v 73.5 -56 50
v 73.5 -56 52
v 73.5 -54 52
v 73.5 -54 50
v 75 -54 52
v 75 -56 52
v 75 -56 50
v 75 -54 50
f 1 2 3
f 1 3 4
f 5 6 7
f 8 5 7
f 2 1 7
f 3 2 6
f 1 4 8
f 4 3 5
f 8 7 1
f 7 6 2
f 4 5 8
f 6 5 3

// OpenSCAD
// file: ../../../cad/v3/hardware.scad
include <params.scad>
use <enclosure.scad>
// PROVISIONAL purchased component envelopes; not production part drawings.
module motor() {
 union() {
  translate([screw_x-6,motor_front-motor_l,motor_bottom]) cube([12,motor_l,10]);
  yrod(screw_x,motor_front-0.1,axis_z,shaft_d,shaft_l+0.1);
  for(x=[screw_x-3,screw_x+3]) translate([x-0.5,motor_front-motor_l-2,motor_bottom+4.5]) cube([1,2.1,1]);
 }
}
module shaft() { yrod(screw_x,motor_front,axis_z,shaft_d,shaft_l); }
module drive_nut(t=0) {
 difference() {
  translate([screw_x,carriage_back+t+nut_slot_y+0.1,axis_z]) rotate([-90,0,0]) union() {
   cylinder(d=nut_af/cos(30),h=nut_height,$fn=6);
   cylinder(d=nut_flange_d,h=nut_flange_t);
  }
  yrod(screw_x,carriage_back+t+nut_slot_y,axis_z,shaft_d+0.2,nut_height+0.2);
 }
}
module battery_holder(raise=0) {
 // Conservative single envelope including cell, contacts and holder.
 translate([93.2,-52,4.5+raise]) cube([22,74,21]);
}
module esp() {
 union() {
  translate([77.5,28,8.3]) cube([17.8,22.5,1.2]);
  translate([78.5,29,9.5]) cube([15.8,20.5,5]);
  translate([81.5,47,9.5]) cube([9,5,3.3]);
 }
}
module power_board() { translate([99,29,8.3]) cube([15,20,7.2]); }
module bridge_board() { translate([98.5,29,20.3]) cube([15,20,7]); }
module oled() {
 union() {
  translate([87.6,53.5,21.5]) cube([27.8,1.6,27.3]);
  translate([88.15,55.1,25]) cube([26.7,1.4,19.3]);
  translate([96.5,50.5,46]) cube([10,3,2.8]);
 }
}
module button() {
 union() {
  xrod(button_panel_x-button_body_l,button_y,button_z,button_body_d,button_body_l);
  xrod(button_panel_x,button_y,button_z,button_flange_d,2);
  xrod(button_panel_x+2,button_y,button_z,12.9,button_face_l-2);
  // Candidate fastening nut envelope; actual nut diameter/thickness to measure.
  difference() {
   xrod(button_panel_x-6,button_y,button_z,17.8,3);
   xrod(button_panel_x-6.1,button_y,button_z,button_hole_d,3.2);
  }
  // Two terminals only; solder and bend radius need physical confirmation.
  for(y=[button_y-2.425,button_y+2.425])
   translate([button_panel_x-button_body_l-button_terminal_l,y-.3,button_z-1]) cube([button_terminal_l,.6,2]);
 }
}
module acrylic() { translate([window_x0-2,window_y0-2,window_pane_z]) cube([window_x1-window_x0+4,window_y1-window_y0+4,window_pane_t]); }
module hinge_pin() { xrod(hinge_pin_x,hinge_y,hinge_z,2,hinge_pin_len); }
module thread_insert(x,y,z) {
 difference() {
  zhole(x,y,z,insert_od,insert_len);
  zhole(x,y,z-.1,2.05,insert_len+.2);
 }
}
module inserts_fixed() {
 for(p=battery_screws) thread_insert(p[0],p[1],2.9);
 for(x=keeper_x) thread_insert(x,keeper_y,44.3);
}
module inserts_lid() {
 for(p=window_clamps) thread_insert(p[0],p[1],window_ear_top);
}
module battery_connector() { translate([91.5,22,12.5]) cube([4.3,5,5]); }
module motor_pads() {
 // 0.3 mm compressed adhesive shim specification, not unspecified empty space.
 translate([78.5,motor_front-motor_l+.1,motor_bottom-0.3]) cube([12,motor_l-.2,0.3]);
 translate([78.5,motor_front-motor_l+.1,motor_top]) cube([12,motor_l-.2,0.3]);
 difference() {
  translate([78.5,-15,motor_bottom]) cube([12,0.3,10]);
  yrod(screw_x,-15.1,axis_z,4.7,0.6);
 }
 // Rear pad clears the two solder terminals.
 difference() {
  translate([78.5,motor_front-motor_l-.3,motor_bottom]) cube([12,0.3,10]);
  translate([80,motor_front-motor_l-.4,motor_bottom+4]) cube([9,0.5,2]);
 }
}
module board_pads() {
 translate([77.5,28,7.4]) cube([17.8,22.5,0.9]);
 translate([99,29,7.4]) cube([15,20,0.9]);
 translate([98.5,29,19.8]) cube([15,20,0.5]);
}

// Illustrative screw envelopes. Intentional pilot-thread interference is excluded
// from solid collision assertions. They remain in preview, BOM and total bounds.
module screw_down(x,y,top,len,d=2,flush=false) {
 color([0.45,0.47,0.5]) {
  zhole(x,y,top-len,d,len);
  if(flush) translate([x,y,top-1.3]) cylinder(d1=d,d2=4,h=1.3);
  else zhole(x,y,top,d==3?5.5:3.6,d==3?2:1.4);
 }
}
// Canonical fastener table: x,y,z,length,diameter,flush,rotationX,headless,owners.
// Preview and interference verification consume this SAME table.
// Stable connection names: keep existing names when adapting module brackets.
function fastener_ids(kind="fixed") = kind=="drive" ? ["F-nut-cap-left","F-nut-cap-right"] :
 kind=="lid" ? ["F-latch-left","F-latch-right","F-window-rear-left","F-window-rear-right","F-window-front-left","F-window-front-right"] :
 ["F-lock-rear-left","F-lock-rear-right","F-lock-front-left","F-lock-front-right",
 "F-guide-rear-left","F-guide-rear-right","F-guide-front","F-motor-left","F-motor-right",
 "F-tray-left","F-tray-right","F-deck-left","F-deck-right","F-esp-left","F-esp-right",
 "F-driver-left","F-driver-right","F-oled-left","F-oled-right",
 "F-battery-rear-left","F-battery-rear-right","F-battery-front-left","F-battery-front-right",
 "F-hinge-left","F-hinge-right"];
function fastener_specs(kind="fixed",t=0) = kind=="drive" ?
 [for(x=[screw_x-4.5,screw_x+4.5]) [x,carriage_back+t-0.2,46,6,2,false,0,false,["nut_cap","nut_carriage"]]] :
 kind=="lid" ? concat(
 [for(x=[93.5,112.5]) [x,8.5,45.2,8,3,false,180,false,["latch_retainer","lid"]]],
 [for(p=window_clamps) [p[0],p[1],window_inner_z,6,2,true,180,false,["window_grille","lid"]]]) :
 concat(
 [for(p=lock_mounts) [p[0],p[1],32.4,6,2,false,0,false,["lock_base","base_box"]]],
 [for(p=guide_screws) [p[0],p[1],44.9,8,2,false,0,false,["guide_cap","lock_base"]]],
 [for(p=motor_screws) [p[0],p[1],motor_clamp_z+2,8,2,false,0,false,["motor_clamp","lock_base"]]],
 [for(p=tray_screws) [p[0],p[1],7.4,4,2,false,0,false,["electronics_tray","base_box"]]],
 [for(p=deck_screws) [p[0],p[1],19.8,6,2,false,0,false,["upper_deck","electronics_tray"]]],
 [for(x=[76.2,96.7]) [x,39,16.8,6,2,false,0,false,["esp_clip","electronics_tray"]]],
 [for(x=[97,115]) [x,38,29.6,6,2,false,0,false,["upper_clip","upper_deck"]]],
 [for(x=[86.8,115.8]) [x,56.3,51,6,2,true,0,false,["oled_bridge","base_box"]]],
 [for(p=battery_screws) [p[0],p[1],0,8,2,true,180,false,["battery_hatch","base_box"]]],
 [for(i=[0:1]) [keeper_x[i],keeper_y,51.1,6,2,true,0,false,[i==0?"hinge_guard_left":"hinge_guard_right","base_box","inserts_fixed"]]]);
module render_screw(s) {
 translate([s[0],s[1],s[2]]) rotate([s[6],0,0])
 if(s[7]) zhole(0,0,-s[3],s[4],s[3]);
 else screw_down(0,0,0,s[3],s[4],s[5]);
}
module fixed_fasteners() { for(s=fastener_specs("fixed")) render_screw(s); }
module moving_fasteners(t=0) { for(s=fastener_specs("drive",t)) render_screw(s); }
module lid_fasteners() { for(s=fastener_specs("lid")) render_screw(s); }
// file: ../../../cad/v3/electronics.scad
include <params.scad>

module electronics_tray() {
 nominal_difference() {
  union() {
   cube_at([74.5,25.5,5.4],[42,27,2]);
   cube_at([74.5,25.5,7.3],[2.5,27,0.7]);
   cube_at([114,25.5,7.3],[2.5,27,0.7]);
   for(p=deck_screws) translate([p[0],p[1],7.3]) cylinder(r=1.3,h=10.7);
   for(x=[76.2,96.7]) cube_at([x-1.2,37,7.3],[2.4,4,7.5]);
  }
  for(p=tray_screws) pilot(p,5.2,8.2,2.4);
  for(x=[90,117]) zhole(x,24,5.2,6.4,3.2);
  for(p=deck_screws) pilot(p,13,18.2,1.7);
  for(x=[76.2,96.7]) zhole(x,39,9.8,1.7,5.2);
  // Tie slots for the lower power board; underside remains accessible off-box.
  for(x=[99.5,112.75]) cube_at([x,33,5.2],[tie_slot_width,8,3.2]);
 }
}
module upper_deck() {
 nominal_difference() {
  union() {
   cube_at([96,25.3,18],[21,27.2,1.8]);
   cube_at([96,27,19.7],[2.3,24,1.8]);
   cube_at([114.3,27,19.7],[2.7,24,1.8]);
   for(x=[97,115]) cube_at([x-1.3,36,19.7],[2.6,4,7.9]);
  }
  for(p=deck_screws) pilot(p,17.8,20,2.4);
  zhole(96.7,39,17.8,4,0.6);
  for(x=[97,115]) zhole(x,38,22.3,1.7,5.5);
 }
}
module esp_clip() {
 nominal_difference() {
  cube_at([74.5,37,14.8],[24,4,2]);
  for(x=[76.2,96.7]) zhole(x,39,14.6,2.4,2.4);
 }
}
module upper_clip() {
 nominal_difference() {
  cube_at([95.5,36,27.6],[21.5,4,2]);
  for(x=[97,115]) zhole(x,38,27.4,2.2,2.4);
 }
}
module oled_bridge() {
 nominal_difference() {
  cube_at([84.3,52.5,49.2],[34,6.1,1.8]);
  for(x=[86.8,115.8]) {
   zhole(x,56.3,49,2.4,2.2);
   countersink(x,56.3,49.7,2.4,4,1.3);
  }
 }
}
// file: ../../../cad/v3/lock.scad
include <params.scad>

module lock_base() {
 nominal_difference() {
  union() {
   cube_at([75,-46,lock_floor],[41,68,3]);
   // Continuous independent bolt support: bed, keyed rail, removable roof.
   cube_at([91,-19,lock_floor_top],[20,24.5,guide_bottom-lock_floor_top]);
   cube_at([bolt_x-key_w/2,-19,key_z0],[key_w,24.5,key_z1-key_z0]);
   for(p=guide_screws) translate([p[0],p[1],lock_floor_top-0.01]) cylinder(r=2.3,h=guide_top-lock_floor_top+0.01);
   for(p=motor_screws) translate([p[0],p[1],lock_floor_top-0.01]) cylinder(r=2.2,h=motor_clamp_z-lock_floor_top+0.01);
   // Motor cradle and front locating shoulder; clamp presses through thin pads.
   cube_at([77.2,-41.8,32.4],[14.6,27.5,motor_bottom-0.3-32.4]);
   cube_at([77.2,-16,32.4],[14.6,2.3,motor_clamp_z-32.4]);
   // Blind front socket: usable bore ends Y=19.8; last 1 mm is solid.
   cube_at([bolt_x-6,14.8,32.4],[12,6,11.6]);
  }
  // Conservative 25x12x10 body; includes the 2.5mm output offset.
  cube_at([screw_x-motor_w/2-0.3,motor_front-motor_l-0.3,motor_bottom-0.3],[motor_w+0.6,motor_l+0.6,motor_h+0.6]);
  yhole(screw_x,-16.3,axis_z,4.7,4);
  // Top-open U seat permits vertical insertion of motor + threaded drive.
  cube_at([screw_x-2.35,-16.3,axis_z],[4.7,4,motor_clamp_z-axis_z+0.2]);
  cube_at([bolt_x-latch_hole/2,13.8,axis_z-latch_hole/2],[latch_hole,6,latch_hole]);
  for(p=lock_mounts) pilot(p,29.2,32.6,2.4);
  for(p=guide_screws) pilot(p,33.2,43.1);
  for(p=motor_screws) pilot(p,motor_clamp_z-6,motor_clamp_z+0.2);
  // Flat reusable rail for future mechanical feedback adapters (SKU pending).
  for(y=[-12,2]) for(x=[112,115]) cube_at([x,y,29.2],[tie_slot_width,5,3.5]);
  // Wiring channels; no closed tunnel around the actuator.
  cube_at([110,15,29.2],[3,7.2,3.5]);
 }
}
module guide_cap() {
 nominal_difference() {
  cube_at([92,-20.5,guide_top],[23,26,guide_cap_t]);
  for(p=guide_screws) pilot(p,42.7,45.1,2.4);
 }
}
module motor_clamp() {
 nominal_difference() {
  cube_at([73.8,-35,motor_clamp_z],[21.4,16,2]);
  for(p=motor_screws) pilot(p,motor_clamp_z-0.2,motor_clamp_z+2.2,2.4);
  cube_at([90.8,-20.7,motor_clamp_z-0.2],[4.6,1.8,2.4]);
 }
}
module bolt_raw(t=0) {
 rear=bolt_back+t;
 nominal_difference() {
  union() {
   cube_at([bolt_x-body_w/2,rear-4,axis_z-body_w/2],[body_w,body_l+4,body_w]);
   cube_at([bolt_x-3,rear+body_l,axis_z-3],[6,tongue_l-taper_l+0.01,6]);
   translate([bolt_x,rear+body_l+tongue_l-taper_l,axis_z]) rotate([-90,0,0])
    linear_extrude(height=taper_l,scale=5/6) square([6,6],center=true);
   // Fork overlaps the main body; lateral/vertical float around the drive finger.
   cube_at([92,rear,axis_z-body_w/2],[7.6,6,body_w]);
  }
  cube_at([91,rear+1.7,35.2],[8.6,2.6,5.6]);
  cube_at([bolt_x-(key_w+0.6)/2,rear-4.1,33.2],[key_w+0.6,body_l+4.2,1.6]);
 }
}
module bolt(t=0,shift=0) { translate([0,0,shift]) bolt_raw(t); }
module nut_carriage(t=0) {
 rear=carriage_back+t;
 nominal_difference() {
  union() {
   cube_at([screw_x-7,rear-2,33.4],[13,10,10.6]);
   cube_at([screw_x+4.5,rear-1.5,36],[8.7,2,4]);
  }
  yhole(screw_x,rear-3,axis_z,shaft_d+0.4,12);
  translate([screw_x,rear+nut_slot_y,axis_z]) rotate([-90,0,0]) {
   cylinder(d=nut_slot_d,h=nut_slot_t,$fn=6);
   cylinder(d=nut_flange_d+0.4,h=nut_flange_t+0.2);
  }
  // Wide open top access for the nut: larger than its circumdiameter.
  cube_at([screw_x-5.3,rear+nut_slot_y,axis_z],[10.6,nut_slot_t,6.2]);
  for(x=[screw_x-4.5,screw_x+4.5]) zhole(x,rear-0.2,39.5,1.7,4.7);
 }
}
module nut_cap(t=0) {
 rear=carriage_back+t;
 nominal_difference() {
  cube_at([screw_x-6.5,rear-2,44],[12.5,10,2]);
  for(x=[screw_x-4.5,screw_x+4.5]) zhole(x,rear-0.2,43.8,2.4,2.4);
 }
}
module fit_bar() { cube([tongue_w,tongue_w,25]); }
module fit_gauge() {
 nominal_difference() {
  cube([30,14,8]);
  for(i=[0:2]) cube_at([2+i*9,3,-0.1],[6.4+i*0.2,6.4+i*0.2,8.2]);
 }
}
// file: ../../../cad/v3/enclosure.scad
include <params.scad>

module base_box() {
 nominal_difference() {
  union() {
   nominal_difference() {
    linear_extrude(height=shell_top) rounded_rect(L,W,4);
    translate([0,0,floor_t]) linear_extrude(height=49) rounded_rect(L-2*wall,W-2*wall,1);
   }
   cube_at([70.5,-57,2.9],[3,114,48.1]);
   // Stationary rear header reaches the same closed height as the lid.
   intersection() {
    cube_at([-117,-60,47],[234,9,8]);
    union() { cube_at([-118,-61,46],[236,11,5]); xrod(-118,hinge_y,hinge_z,8,236); }
   }
   for(k=fixed_knuckles) xrod(k[0],hinge_y,hinge_z,hinge_od,k[1]-k[0]);
   for(x=keeper_x) cube_at([x-4,-54,43.5],[8,6.5,4.8]);
   // Battery chamber: side/end walls and a fixed ceiling connected to outer wall.
   cube_at([90,-54.5,2.9],[2.7,79,23.1]);
   cube_at([90,-54.5,2.9],[30,2.2,23.1]);
   cube_at([90,22.3,2.9],[30,2.2,23.1]);
   cube_at([90,-54.5,26],[30,79,3.4]);
   for(p=battery_screws) translate([p[0],p[1],2.8]) cylinder(r=3,h=5.5);
   for(p=lock_mounts) if(p[0]<90) translate([p[0],p[1],2.9]) cylinder(r=3,h=26.5);
   for(p=tray_screws) translate([p[0],p[1],2.9]) cylinder(r=2.3,h=2.5);
   // OLED bottom stop and two connected side rails.
   cube_at([85.3,53,19.2],[32.4,4.1,2]);
   cube_at([85.3,53,21.1],[2.3,4.1,28.1]);
   cube_at([115.4,53,21.1],[2.3,4.1,28.1]);
   // Recessed side-wall panel: 5.7mm button face stays inside X=120.
   difference() {
    xrod(button_panel_x-3,button_y,button_z,21,120-(button_panel_x-3));
    xrod(button_panel_x,button_y,button_z,18.8,120-button_panel_x+.1);
   }

  }
  // A continuous bore is essential: otherwise the fixed header traps the pin.
  xhole(-120.1,hinge_y,hinge_z,hinge_bore,240.2);
  // Moving hinge knuckles and webs get a rectangular swept-side relief.
  for(k=moving_knuckles) cube_at([k[0]-0.3,-60.2,46.6],[k[1]-k[0]+0.6,9.8,9]);
  for(x=keeper_x) {
   cube_at([x-4.3,-58.3,48.3],[8.6,11.1,7]);
   zhole(x,keeper_y,43.8,2.4,4.6);
   let($feature_kind="insert") zhole(x,keeper_y,44.2,insert_hole_d(),4.2);
  }
  // Battery extraction aperture, and a shallow seat for the flush service plate.
  cube_at([92.7,-52.3,-0.1],[22.6,74.6,8.6]);
  cube_at([87.7,-56.3,-0.1],[31.6,82.6,3]);
  for(p=battery_screws) {
   pilot(p,2.7,8.4,2.4);
   let($feature_kind="insert") zhole(p[0],p[1],2.8,insert_hole_d(),4.1);
  }
  for(p=lock_mounts) pilot(p,26.2,29.6,1.7);
  for(p=tray_screws) pilot(p,3.1,5.6,1.7);
  // Battery connector passage enters the electronics bay, not the actuator above.
  cube_at([91,21.8,12],[7,3.4,6]);
  // Front optical window / recessed button. There is deliberately no USB hole.
  cube_at([87.7,56.7,24.5],[27.6,3.6,20.5]);
  xhole(button_panel_x-3.1,button_y,button_z,button_hole_d,3.2);
  xhole(button_panel_x,button_y,button_z,18.8,120-button_panel_x+.1);
  // PCB insertion channels; stop ledge remains below them.
  cube_at([87.3,53.2,21.3],[28.4,2.2,28.2]);
  cube_at([84.2,52.4,49.2],[34.2,6.3,1.9]);
  for(x=[86.8,115.8]) zhole(x,56.3,43,1.7,6.5);
 }
}
module lid() {
 union() {
 nominal_difference() {
  union() {
   cube_at([-120,-50.5,lid_bottom],[240,110.5,H-lid_bottom]);
   for(k=moving_knuckles) {
    xrod(k[0],hinge_y,hinge_z,hinge_od,k[1]-k[0]);
    cube_at([k[0],-53,51.4],[k[1]-k[0],4,3.6]);
   }
   // Internal T-head receiver and inside-only retainer screw lands.
   cube_at([92,3,46.7],[22,11,4.8]);
   // Inside-only hard stops carry screw preload instead of crushing the pane.
   for(p=window_clamps) cube_at([p[0]-9,p[1]-3.5,window_ear_top],[18,7,lid_bottom+0.1-window_ear_top]);
  }
  for(k=moving_knuckles) xhole(k[0]-0.1,hinge_y,hinge_z,hinge_bore,k[1]-k[0]+0.2);
  cube_at([window_x0,window_y0,window_ear_top-0.1],[window_x1-window_x0,window_y1-window_y0,H-window_ear_top+0.2]);
  // Interior rebate clears the pane; the outside grille closes it.
  cube_at([window_x0-3,window_y0-3,window_ear_top-0.1],[window_x1-window_x0+6,window_y1-window_y0+6,window_outer_z-window_ear_top+0.1]);
  cube_at([94.7,5.7,46.6],[16.6,5.6,3.7]);
  cube_at([97.2,5.7,45.8],[11.6,5.6,4.5]);
  for(x=[93.5,112.5]) zhole(x,8.5,45.8,2.4,8.4);
  for(p=window_clamps) {
   zhole(p[0],p[1],window_ear_top-0.1,2.4,54.2-window_ear_top+0.1);
   let($feature_kind="insert") zhole(p[0],p[1],window_ear_top-0.1,insert_hole_d(),4.1);
  }
 }
 // Union after cutting the opening: five short-span ribs join both edges.
 translate([0,0,window_outer_z]) linear_extrude(height=H-window_outer_z) window_grid_2d();
 }
}
module latch() {
 nominal_difference() {
  union() {
   cube_at([bolt_x-5.5,latch_y,latch_z0],[11,5,43.1-latch_z0]);
   cube_at([bolt_x-latch_neck_w/2,latch_y,43],[latch_neck_w,5,2.1]);
   cube_at([bolt_x-5.5,latch_y,45],[11,5,2.1]);
   cube_at([bolt_x-8,latch_y,47],[16,5,3]);
  }
  cube_at([bolt_x-latch_hole/2,latch_y-0.1,axis_z-latch_hole/2],[latch_hole,5.2,latch_hole]);
 }
}
module latch_retainer() {
 nominal_difference() {
  cube_at([92,3,retainer_z],[22,11,retainer_t]);
  cube_at([97.2,5.7,45],[11.6,5.6,2]);
  for(x=[93.5,112.5]) zhole(x,8.5,45,3.4,2);
 }
}
module window_grid_2d() {
 union() {
  nominal_difference() {
   translate([window_x0-3,window_y0-3]) square([window_x1-window_x0+6,window_y1-window_y0+6]);
   translate([window_x0,window_y0]) square([window_x1-window_x0,window_y1-window_y0]);
  }
  for(x=window_bar_x) {
   translate([x-window_bar_w/2,window_y0-2]) square([window_bar_w,window_y1-window_y0+4]);
   // Concave radius at all four rib roots, tangent to rib and window frame.
   for(side=[-1,1]) for(end=[0,1])
    translate([x+side*window_bar_w/2,end?window_y1:window_y0]) scale([side,end?-1:1])
     nominal_difference() { square([window_root_r,window_root_r]); translate([window_root_r,window_root_r]) circle(r=window_root_r); }
  }
 }
}
module window_grille() {
 nominal_difference() {
  union() {
   translate([0,0,window_inner_z]) linear_extrude(height=window_inner_t) window_grid_2d();
   for(p=window_clamps) cube_at([p[0]-9,p[1]-3.5,window_inner_z],[18,7,window_ear_t]);
  }
  for(p=window_clamps) {
   zhole(p[0],p[1],window_inner_z-0.1,2.4,window_inner_t+0.2);
   countersink(p[0],p[1],window_inner_z-0.01,4.2,2.4,1.31);
  }
 }
}
module battery_hatch() {
 nominal_difference() {
  union() {
   cube_at([88,-56,0],[31,82,2.6]);
   for(x=[96,112]) for(y=[-47,17]) cube_at([x-2,y-2,2.5],[4,4,1.8]);
  }
  for(p=battery_screws) {
   pilot(p,-0.1,2.8,2.4);
   countersink(p[0],p[1],-0.01,4.2,2.4,1.3);
  }
 }
}
module hinge_guard(side=-1) {
 x=side<0?keeper_x[0]:keeper_x[1];
 stop=side<0?hinge_pin_x-pin_end_play-keeper_wall:hinge_pin_x+hinge_pin_len+pin_end_play;
 nominal_difference() {
  union() {
   intersection() {
    union() {
     cube_at([x-4,-58,53],[8,7.2,2]);
     cube_at([x-4,-52,48.3],[8,1.2,6.7]);
     // End cheek remains within the fixed hinge's radial envelope.
     cube_at([stop,-58,48.3],[keeper_wall,6,6.7]);
    }
    xrod(x-4.1,hinge_y,hinge_z,8.4,8.2);
   }
   cube_at([x-4,-53.6,48.3],[8,6.1,2.8]);
  }
  zhole(x,keeper_y,48.1,2.4,3.2);
  countersink(x,keeper_y,49.8,2.4,4,1.3);
  zhole(x,keeper_y,51.09,4.2,4);
 }
}

module insert_coupon() {
 nominal_difference() {
  cube([36,12,6]);
  for(i=[0:2]) {
   zhole(6+i*12,6,1.8,2.8+i*.1,4.3);
   countersink(6+i*12,6,5.6,2.8+i*.1,3.5,.5);
  }
 }
}
module keeper_insert_coupon() {
 nominal_difference() {
  cube([8,6.5,4.8]);
  zhole(4,3.5,.3,2.4,4.6);
  zhole(4,3.5,.7,insert_pilot_d,4.2);
 }
}
module window_insert_coupon() {
 nominal_difference() {
  cube([18,7,5.1]);
  zhole(9,3.5,-.1,2.4,4.4);
  zhole(9,3.5,-.1,insert_pilot_d,4.1);
 }
}
module hinge_bore_coupon() {
 nominal_difference() {
  cube([20,30,8]);
  for(i=[0:2]) xhole(-.1,5+i*10,4,2.2+i*.2,20.2);
 }
}
// file: ../../../cad/v3/references.scad
// Generated from engineering/references.json; do not edit.
// SHA256 f9069af00d99415f6bf80c07423463d1202e891299ade11124e069a9ba9990c0
// Visual corner/platform profiles are approximate. Dimensions are nominal mm.
module reference_phone() {
 translate([-23,0,0]) union() {
  translate([0,0,9.43]) linear_extrude(height=8.75)
   offset(r=12) square([139.4,54.0],center=true);
  translate([-55.7,0,6.88])
   linear_extrude(height=2.55) offset(r=9) square([28,56],center=true);
  translate([-67.33,-24.630000000000003,5]) cylinder(d=16.2,h=1.88,$fn=64);
  translate([-48.09,-24.630000000000003,5]) cylinder(d=16.2,h=1.88,$fn=64);
  translate([-57.71000000000001,-6.640000000000001,5]) cylinder(d=16.2,h=1.88,$fn=64);
  translate([-50.870000000000005,-39.45,12.475]) cube([6.9,.45,2.66]);
  translate([-38.870000000000005,-39.45,12.475]) cube([11.2,.45,2.66]);
  translate([-24.67,-39.45,12.475]) cube([11.2,.45,2.66]);
  translate([-35.02,39.0,12.475]) cube([17.7,.45,2.66]);
  translate([21.56999999999999,39.0,12.475]) cube([17.1,.45,2.66]);
 }
}
module reference_card() {
 translate([-7,0,18.18])
 linear_extrude(height=0.76) offset(r=3.18)
 square([79.24,47.62],center=true);
}
// file: ../../../cad/v3/params.scad
// TetherLock V3 STRUCTURAL PROTOTYPE. mm / degrees. Hardware SKUs NOT frozen.
// World: X long direction; +Y front; Z bottom=0. Closed assembly <=240x120x55.
$fn=48;
L=240; W=120; H=55;
wall=3; floor_t=3; shell_top=51; lid_bottom=51.4;
divider_x=72; divider_t=3;
hinge_y=-55; hinge_z=51; hinge_od=8; hinge_bore=2.4;
fixed_knuckles=[[-102,-90],[-30,-18],[42,54]];
moving_knuckles=[[-89.6,-78],[-17.6,-6],[54.4,66]];
hinge_pin_x=-107; hinge_pin_len=180;
keeper_x=[-108,77.5]; keeper_y=-50.5;
pin_end_play=0.5; keeper_wall=1.5;
insert_od=3.2; insert_len=4; insert_pilot_d=2.9;
$print_bores=false;
function insert_hole_d() = $print_bores ? insert_pilot_d : insert_od+0.05;
stroke=14;
bolt_x=103; axis_z=38; bolt_back=-14.5; carriage_back=-11;
body_w=9.2; body_l=6; tongue_w=6; tongue_l=13.5; taper_l=0.8;
guide_clearance=0.3;
screw_x=84.5; motor_front=-15;
// Seller image: gearbox 9; motor text 16 vs drawing 15; reserve 25 total.
// Output offset 2.5: rotate motor about its shaft so body is ABOVE the axis.
motor_l=25; motor_w=12; motor_h=10; motor_axis_offset=2.5;
shaft_l=55; shaft_d=4; shaft_pitch=0.7; shaft_length_tolerance=1;
motor_bottom=axis_z+motor_axis_offset-motor_h/2;
motor_top=motor_bottom+motor_h; motor_clamp_z=motor_top+0.3;
// Supplier flange nut NOT dimensioned: conservative adjustable candidate.
nut_af=7; nut_flange_d=10; nut_height=5; nut_flange_t=1;
// R16-503 drawing; threaded mounting diameter remains provisional 16mm.
button_y=30; button_z=40.5; button_panel_x=114;
button_hole_d=16.4; button_body_d=15.8; button_flange_d=17.8;
button_body_l=18.3; button_terminal_l=6; button_face_l=5.7;
tie_width=2.5; tie_slot_width=3.0;
lock_floor=29.4; lock_floor_top=32.4;
guide_bottom=33.1; guide_top=42.9; guide_cap_t=2;
key_w=2.8; key_z0=33.0; key_z1=34.5;
nut_slot_d=nut_af/cos(30)+0.4; nut_slot_y=1.5; nut_slot_t=nut_height+0.4;
latch_y=6; latch_t=5; latch_hole=6.8;
latch_z0=32.6; latch_neck_w=6;
retainer_z=45.2; retainer_t=1.5;
window_x0=-100; window_x1=45; window_y0=-38; window_y1=40;
window_clamps=[[-94,-43],[39,-43],[-94,45],[39,45]];
window_bar_x=[-76,-52,-28,-4,20]; window_bar_w=5; window_root_r=2;
window_outer_z=52; window_pane_t=1.5;
window_pane_z=window_outer_z-window_pane_t;
// Pane contact and screw ears are independent: preload is carried by the ears.
window_inner_z=47.4; window_inner_t=3.1;
window_inner_top=window_inner_z+window_inner_t;
window_ear_t=2.5; window_ear_top=window_inner_z+window_ear_t;
assert(window_inner_z>=47,"Window grille must preserve storage headroom");
lock_mounts=[[77,-43],[113,-43],[77,19],[113,19]];
guide_screws=[[93.5,-18],[114,-18],[114,-2]];
motor_screws=[[76,-27],[93,-27]];
battery_screws=[[90,-54],[117,-54],[90,24],[117,24]];
tray_screws=[[76,27],[115,51]];
deck_screws=[[97.5,27],[115,50.8]];
print_parts=["base_box","lid","lock_base","guide_cap","motor_clamp",
 "bolt","nut_carriage","nut_cap","latch","latch_retainer","window_grille",
 "battery_hatch","electronics_tray","upper_deck","esp_clip","upper_clip",
 "oled_bridge","hinge_guard_left","hinge_guard_right","fit_bar","fit_gauge",
 "insert_coupon","keeper_insert_coupon","window_insert_coupon","hinge_bore_coupon"];
assembly_parts=["base_box","lid","lock_base","guide_cap","motor_clamp",
 "bolt","nut_carriage","nut_cap","latch","latch_retainer",
 "window_grille",
 "battery_hatch","electronics_tray","upper_deck","esp_clip","upper_clip","oled_bridge",
 "hinge_guard_left","hinge_guard_right"];
hardware_parts=["motor","drive_nut","battery_holder","esp","power_board",
 "bridge_board","oled","button","acrylic","hinge_pin","inserts_fixed","inserts_lid",
 "battery_connector",
 "motor_pads","board_pads"];
// All holes below are pilot/clearance geometry, not modelled screw threads.
module feature(axis,center,d,h,kind="clearance",details=[]) {
 if(!is_undef($export_features) && $export_features)
  echo(["TL_FEATURE",$feature_part,axis,center,d,h,kind,details]);
}
// These wrappers keep CAD feature dimensions attached to the geometry that uses
// them. The boolean operation is part of the export, not guessed from a mesh.
module nominal_difference() {
 base=is_undef($feature_operation)?"solid":$feature_operation;
 difference() {
  let($feature_operation=base) children(0);
  if($children>1) for(i=[1:$children-1])
   let($feature_operation=base=="solid"?"cut":"solid") children(i);
 }
}
module cube_at(position,size) {
 feature("BOX",position,0,0,"box",[size,is_undef($feature_operation)?"solid":$feature_operation]);
 translate(position) cube(size);
}
module zhole(x,y,z,d,h) {
 feature("Z",[x,y,z],d,h,is_undef($feature_kind)?(d<2?"pilot":"clearance"):$feature_kind);
 translate([x,y,z]) cylinder(d=d,h=h);
}
module yrod(x,y,z,d,h) { translate([x,y,z]) rotate([-90,0,0]) cylinder(d=d,h=h); }
module xrod(x,y,z,d,h) { translate([x,y,z]) rotate([0,90,0]) cylinder(d=d,h=h); }
module yhole(x,y,z,d,h,kind="clearance") { feature("Y",[x,y,z],d,h,kind); yrod(x,y,z,d,h); }
module xhole(x,y,z,d,h,kind="clearance") { feature("X",[x,y,z],d,h,kind); xrod(x,y,z,d,h); }
module countersink(x,y,z,d1,d2,h) {
 feature("Z",[x,y,z],d1,h,"countersink",[d2]);
 translate([x,y,z]) cylinder(d1=d1,d2=d2,h=h);
}
module rounded_rect(l,w,r) { offset(r=r) square([l-2*r,w-2*r],center=true); }
module lid_turn(a) { translate([0,hinge_y,hinge_z]) rotate([a,0,0]) translate([0,-hinge_y,-hinge_z]) children(); }
module pilot(xy,z0,z1,d=1.7) { let($feature_kind=d<2?"pilot":"clearance") zhole(xy[0],xy[1],z0,d,z1-z0); }
// main file
include <../../../cad/v3/assembly.scad>
view="metadata";
intersection(){hinge_guard(1);translate([73.4,-56,50])cube([2,2,2]);}
